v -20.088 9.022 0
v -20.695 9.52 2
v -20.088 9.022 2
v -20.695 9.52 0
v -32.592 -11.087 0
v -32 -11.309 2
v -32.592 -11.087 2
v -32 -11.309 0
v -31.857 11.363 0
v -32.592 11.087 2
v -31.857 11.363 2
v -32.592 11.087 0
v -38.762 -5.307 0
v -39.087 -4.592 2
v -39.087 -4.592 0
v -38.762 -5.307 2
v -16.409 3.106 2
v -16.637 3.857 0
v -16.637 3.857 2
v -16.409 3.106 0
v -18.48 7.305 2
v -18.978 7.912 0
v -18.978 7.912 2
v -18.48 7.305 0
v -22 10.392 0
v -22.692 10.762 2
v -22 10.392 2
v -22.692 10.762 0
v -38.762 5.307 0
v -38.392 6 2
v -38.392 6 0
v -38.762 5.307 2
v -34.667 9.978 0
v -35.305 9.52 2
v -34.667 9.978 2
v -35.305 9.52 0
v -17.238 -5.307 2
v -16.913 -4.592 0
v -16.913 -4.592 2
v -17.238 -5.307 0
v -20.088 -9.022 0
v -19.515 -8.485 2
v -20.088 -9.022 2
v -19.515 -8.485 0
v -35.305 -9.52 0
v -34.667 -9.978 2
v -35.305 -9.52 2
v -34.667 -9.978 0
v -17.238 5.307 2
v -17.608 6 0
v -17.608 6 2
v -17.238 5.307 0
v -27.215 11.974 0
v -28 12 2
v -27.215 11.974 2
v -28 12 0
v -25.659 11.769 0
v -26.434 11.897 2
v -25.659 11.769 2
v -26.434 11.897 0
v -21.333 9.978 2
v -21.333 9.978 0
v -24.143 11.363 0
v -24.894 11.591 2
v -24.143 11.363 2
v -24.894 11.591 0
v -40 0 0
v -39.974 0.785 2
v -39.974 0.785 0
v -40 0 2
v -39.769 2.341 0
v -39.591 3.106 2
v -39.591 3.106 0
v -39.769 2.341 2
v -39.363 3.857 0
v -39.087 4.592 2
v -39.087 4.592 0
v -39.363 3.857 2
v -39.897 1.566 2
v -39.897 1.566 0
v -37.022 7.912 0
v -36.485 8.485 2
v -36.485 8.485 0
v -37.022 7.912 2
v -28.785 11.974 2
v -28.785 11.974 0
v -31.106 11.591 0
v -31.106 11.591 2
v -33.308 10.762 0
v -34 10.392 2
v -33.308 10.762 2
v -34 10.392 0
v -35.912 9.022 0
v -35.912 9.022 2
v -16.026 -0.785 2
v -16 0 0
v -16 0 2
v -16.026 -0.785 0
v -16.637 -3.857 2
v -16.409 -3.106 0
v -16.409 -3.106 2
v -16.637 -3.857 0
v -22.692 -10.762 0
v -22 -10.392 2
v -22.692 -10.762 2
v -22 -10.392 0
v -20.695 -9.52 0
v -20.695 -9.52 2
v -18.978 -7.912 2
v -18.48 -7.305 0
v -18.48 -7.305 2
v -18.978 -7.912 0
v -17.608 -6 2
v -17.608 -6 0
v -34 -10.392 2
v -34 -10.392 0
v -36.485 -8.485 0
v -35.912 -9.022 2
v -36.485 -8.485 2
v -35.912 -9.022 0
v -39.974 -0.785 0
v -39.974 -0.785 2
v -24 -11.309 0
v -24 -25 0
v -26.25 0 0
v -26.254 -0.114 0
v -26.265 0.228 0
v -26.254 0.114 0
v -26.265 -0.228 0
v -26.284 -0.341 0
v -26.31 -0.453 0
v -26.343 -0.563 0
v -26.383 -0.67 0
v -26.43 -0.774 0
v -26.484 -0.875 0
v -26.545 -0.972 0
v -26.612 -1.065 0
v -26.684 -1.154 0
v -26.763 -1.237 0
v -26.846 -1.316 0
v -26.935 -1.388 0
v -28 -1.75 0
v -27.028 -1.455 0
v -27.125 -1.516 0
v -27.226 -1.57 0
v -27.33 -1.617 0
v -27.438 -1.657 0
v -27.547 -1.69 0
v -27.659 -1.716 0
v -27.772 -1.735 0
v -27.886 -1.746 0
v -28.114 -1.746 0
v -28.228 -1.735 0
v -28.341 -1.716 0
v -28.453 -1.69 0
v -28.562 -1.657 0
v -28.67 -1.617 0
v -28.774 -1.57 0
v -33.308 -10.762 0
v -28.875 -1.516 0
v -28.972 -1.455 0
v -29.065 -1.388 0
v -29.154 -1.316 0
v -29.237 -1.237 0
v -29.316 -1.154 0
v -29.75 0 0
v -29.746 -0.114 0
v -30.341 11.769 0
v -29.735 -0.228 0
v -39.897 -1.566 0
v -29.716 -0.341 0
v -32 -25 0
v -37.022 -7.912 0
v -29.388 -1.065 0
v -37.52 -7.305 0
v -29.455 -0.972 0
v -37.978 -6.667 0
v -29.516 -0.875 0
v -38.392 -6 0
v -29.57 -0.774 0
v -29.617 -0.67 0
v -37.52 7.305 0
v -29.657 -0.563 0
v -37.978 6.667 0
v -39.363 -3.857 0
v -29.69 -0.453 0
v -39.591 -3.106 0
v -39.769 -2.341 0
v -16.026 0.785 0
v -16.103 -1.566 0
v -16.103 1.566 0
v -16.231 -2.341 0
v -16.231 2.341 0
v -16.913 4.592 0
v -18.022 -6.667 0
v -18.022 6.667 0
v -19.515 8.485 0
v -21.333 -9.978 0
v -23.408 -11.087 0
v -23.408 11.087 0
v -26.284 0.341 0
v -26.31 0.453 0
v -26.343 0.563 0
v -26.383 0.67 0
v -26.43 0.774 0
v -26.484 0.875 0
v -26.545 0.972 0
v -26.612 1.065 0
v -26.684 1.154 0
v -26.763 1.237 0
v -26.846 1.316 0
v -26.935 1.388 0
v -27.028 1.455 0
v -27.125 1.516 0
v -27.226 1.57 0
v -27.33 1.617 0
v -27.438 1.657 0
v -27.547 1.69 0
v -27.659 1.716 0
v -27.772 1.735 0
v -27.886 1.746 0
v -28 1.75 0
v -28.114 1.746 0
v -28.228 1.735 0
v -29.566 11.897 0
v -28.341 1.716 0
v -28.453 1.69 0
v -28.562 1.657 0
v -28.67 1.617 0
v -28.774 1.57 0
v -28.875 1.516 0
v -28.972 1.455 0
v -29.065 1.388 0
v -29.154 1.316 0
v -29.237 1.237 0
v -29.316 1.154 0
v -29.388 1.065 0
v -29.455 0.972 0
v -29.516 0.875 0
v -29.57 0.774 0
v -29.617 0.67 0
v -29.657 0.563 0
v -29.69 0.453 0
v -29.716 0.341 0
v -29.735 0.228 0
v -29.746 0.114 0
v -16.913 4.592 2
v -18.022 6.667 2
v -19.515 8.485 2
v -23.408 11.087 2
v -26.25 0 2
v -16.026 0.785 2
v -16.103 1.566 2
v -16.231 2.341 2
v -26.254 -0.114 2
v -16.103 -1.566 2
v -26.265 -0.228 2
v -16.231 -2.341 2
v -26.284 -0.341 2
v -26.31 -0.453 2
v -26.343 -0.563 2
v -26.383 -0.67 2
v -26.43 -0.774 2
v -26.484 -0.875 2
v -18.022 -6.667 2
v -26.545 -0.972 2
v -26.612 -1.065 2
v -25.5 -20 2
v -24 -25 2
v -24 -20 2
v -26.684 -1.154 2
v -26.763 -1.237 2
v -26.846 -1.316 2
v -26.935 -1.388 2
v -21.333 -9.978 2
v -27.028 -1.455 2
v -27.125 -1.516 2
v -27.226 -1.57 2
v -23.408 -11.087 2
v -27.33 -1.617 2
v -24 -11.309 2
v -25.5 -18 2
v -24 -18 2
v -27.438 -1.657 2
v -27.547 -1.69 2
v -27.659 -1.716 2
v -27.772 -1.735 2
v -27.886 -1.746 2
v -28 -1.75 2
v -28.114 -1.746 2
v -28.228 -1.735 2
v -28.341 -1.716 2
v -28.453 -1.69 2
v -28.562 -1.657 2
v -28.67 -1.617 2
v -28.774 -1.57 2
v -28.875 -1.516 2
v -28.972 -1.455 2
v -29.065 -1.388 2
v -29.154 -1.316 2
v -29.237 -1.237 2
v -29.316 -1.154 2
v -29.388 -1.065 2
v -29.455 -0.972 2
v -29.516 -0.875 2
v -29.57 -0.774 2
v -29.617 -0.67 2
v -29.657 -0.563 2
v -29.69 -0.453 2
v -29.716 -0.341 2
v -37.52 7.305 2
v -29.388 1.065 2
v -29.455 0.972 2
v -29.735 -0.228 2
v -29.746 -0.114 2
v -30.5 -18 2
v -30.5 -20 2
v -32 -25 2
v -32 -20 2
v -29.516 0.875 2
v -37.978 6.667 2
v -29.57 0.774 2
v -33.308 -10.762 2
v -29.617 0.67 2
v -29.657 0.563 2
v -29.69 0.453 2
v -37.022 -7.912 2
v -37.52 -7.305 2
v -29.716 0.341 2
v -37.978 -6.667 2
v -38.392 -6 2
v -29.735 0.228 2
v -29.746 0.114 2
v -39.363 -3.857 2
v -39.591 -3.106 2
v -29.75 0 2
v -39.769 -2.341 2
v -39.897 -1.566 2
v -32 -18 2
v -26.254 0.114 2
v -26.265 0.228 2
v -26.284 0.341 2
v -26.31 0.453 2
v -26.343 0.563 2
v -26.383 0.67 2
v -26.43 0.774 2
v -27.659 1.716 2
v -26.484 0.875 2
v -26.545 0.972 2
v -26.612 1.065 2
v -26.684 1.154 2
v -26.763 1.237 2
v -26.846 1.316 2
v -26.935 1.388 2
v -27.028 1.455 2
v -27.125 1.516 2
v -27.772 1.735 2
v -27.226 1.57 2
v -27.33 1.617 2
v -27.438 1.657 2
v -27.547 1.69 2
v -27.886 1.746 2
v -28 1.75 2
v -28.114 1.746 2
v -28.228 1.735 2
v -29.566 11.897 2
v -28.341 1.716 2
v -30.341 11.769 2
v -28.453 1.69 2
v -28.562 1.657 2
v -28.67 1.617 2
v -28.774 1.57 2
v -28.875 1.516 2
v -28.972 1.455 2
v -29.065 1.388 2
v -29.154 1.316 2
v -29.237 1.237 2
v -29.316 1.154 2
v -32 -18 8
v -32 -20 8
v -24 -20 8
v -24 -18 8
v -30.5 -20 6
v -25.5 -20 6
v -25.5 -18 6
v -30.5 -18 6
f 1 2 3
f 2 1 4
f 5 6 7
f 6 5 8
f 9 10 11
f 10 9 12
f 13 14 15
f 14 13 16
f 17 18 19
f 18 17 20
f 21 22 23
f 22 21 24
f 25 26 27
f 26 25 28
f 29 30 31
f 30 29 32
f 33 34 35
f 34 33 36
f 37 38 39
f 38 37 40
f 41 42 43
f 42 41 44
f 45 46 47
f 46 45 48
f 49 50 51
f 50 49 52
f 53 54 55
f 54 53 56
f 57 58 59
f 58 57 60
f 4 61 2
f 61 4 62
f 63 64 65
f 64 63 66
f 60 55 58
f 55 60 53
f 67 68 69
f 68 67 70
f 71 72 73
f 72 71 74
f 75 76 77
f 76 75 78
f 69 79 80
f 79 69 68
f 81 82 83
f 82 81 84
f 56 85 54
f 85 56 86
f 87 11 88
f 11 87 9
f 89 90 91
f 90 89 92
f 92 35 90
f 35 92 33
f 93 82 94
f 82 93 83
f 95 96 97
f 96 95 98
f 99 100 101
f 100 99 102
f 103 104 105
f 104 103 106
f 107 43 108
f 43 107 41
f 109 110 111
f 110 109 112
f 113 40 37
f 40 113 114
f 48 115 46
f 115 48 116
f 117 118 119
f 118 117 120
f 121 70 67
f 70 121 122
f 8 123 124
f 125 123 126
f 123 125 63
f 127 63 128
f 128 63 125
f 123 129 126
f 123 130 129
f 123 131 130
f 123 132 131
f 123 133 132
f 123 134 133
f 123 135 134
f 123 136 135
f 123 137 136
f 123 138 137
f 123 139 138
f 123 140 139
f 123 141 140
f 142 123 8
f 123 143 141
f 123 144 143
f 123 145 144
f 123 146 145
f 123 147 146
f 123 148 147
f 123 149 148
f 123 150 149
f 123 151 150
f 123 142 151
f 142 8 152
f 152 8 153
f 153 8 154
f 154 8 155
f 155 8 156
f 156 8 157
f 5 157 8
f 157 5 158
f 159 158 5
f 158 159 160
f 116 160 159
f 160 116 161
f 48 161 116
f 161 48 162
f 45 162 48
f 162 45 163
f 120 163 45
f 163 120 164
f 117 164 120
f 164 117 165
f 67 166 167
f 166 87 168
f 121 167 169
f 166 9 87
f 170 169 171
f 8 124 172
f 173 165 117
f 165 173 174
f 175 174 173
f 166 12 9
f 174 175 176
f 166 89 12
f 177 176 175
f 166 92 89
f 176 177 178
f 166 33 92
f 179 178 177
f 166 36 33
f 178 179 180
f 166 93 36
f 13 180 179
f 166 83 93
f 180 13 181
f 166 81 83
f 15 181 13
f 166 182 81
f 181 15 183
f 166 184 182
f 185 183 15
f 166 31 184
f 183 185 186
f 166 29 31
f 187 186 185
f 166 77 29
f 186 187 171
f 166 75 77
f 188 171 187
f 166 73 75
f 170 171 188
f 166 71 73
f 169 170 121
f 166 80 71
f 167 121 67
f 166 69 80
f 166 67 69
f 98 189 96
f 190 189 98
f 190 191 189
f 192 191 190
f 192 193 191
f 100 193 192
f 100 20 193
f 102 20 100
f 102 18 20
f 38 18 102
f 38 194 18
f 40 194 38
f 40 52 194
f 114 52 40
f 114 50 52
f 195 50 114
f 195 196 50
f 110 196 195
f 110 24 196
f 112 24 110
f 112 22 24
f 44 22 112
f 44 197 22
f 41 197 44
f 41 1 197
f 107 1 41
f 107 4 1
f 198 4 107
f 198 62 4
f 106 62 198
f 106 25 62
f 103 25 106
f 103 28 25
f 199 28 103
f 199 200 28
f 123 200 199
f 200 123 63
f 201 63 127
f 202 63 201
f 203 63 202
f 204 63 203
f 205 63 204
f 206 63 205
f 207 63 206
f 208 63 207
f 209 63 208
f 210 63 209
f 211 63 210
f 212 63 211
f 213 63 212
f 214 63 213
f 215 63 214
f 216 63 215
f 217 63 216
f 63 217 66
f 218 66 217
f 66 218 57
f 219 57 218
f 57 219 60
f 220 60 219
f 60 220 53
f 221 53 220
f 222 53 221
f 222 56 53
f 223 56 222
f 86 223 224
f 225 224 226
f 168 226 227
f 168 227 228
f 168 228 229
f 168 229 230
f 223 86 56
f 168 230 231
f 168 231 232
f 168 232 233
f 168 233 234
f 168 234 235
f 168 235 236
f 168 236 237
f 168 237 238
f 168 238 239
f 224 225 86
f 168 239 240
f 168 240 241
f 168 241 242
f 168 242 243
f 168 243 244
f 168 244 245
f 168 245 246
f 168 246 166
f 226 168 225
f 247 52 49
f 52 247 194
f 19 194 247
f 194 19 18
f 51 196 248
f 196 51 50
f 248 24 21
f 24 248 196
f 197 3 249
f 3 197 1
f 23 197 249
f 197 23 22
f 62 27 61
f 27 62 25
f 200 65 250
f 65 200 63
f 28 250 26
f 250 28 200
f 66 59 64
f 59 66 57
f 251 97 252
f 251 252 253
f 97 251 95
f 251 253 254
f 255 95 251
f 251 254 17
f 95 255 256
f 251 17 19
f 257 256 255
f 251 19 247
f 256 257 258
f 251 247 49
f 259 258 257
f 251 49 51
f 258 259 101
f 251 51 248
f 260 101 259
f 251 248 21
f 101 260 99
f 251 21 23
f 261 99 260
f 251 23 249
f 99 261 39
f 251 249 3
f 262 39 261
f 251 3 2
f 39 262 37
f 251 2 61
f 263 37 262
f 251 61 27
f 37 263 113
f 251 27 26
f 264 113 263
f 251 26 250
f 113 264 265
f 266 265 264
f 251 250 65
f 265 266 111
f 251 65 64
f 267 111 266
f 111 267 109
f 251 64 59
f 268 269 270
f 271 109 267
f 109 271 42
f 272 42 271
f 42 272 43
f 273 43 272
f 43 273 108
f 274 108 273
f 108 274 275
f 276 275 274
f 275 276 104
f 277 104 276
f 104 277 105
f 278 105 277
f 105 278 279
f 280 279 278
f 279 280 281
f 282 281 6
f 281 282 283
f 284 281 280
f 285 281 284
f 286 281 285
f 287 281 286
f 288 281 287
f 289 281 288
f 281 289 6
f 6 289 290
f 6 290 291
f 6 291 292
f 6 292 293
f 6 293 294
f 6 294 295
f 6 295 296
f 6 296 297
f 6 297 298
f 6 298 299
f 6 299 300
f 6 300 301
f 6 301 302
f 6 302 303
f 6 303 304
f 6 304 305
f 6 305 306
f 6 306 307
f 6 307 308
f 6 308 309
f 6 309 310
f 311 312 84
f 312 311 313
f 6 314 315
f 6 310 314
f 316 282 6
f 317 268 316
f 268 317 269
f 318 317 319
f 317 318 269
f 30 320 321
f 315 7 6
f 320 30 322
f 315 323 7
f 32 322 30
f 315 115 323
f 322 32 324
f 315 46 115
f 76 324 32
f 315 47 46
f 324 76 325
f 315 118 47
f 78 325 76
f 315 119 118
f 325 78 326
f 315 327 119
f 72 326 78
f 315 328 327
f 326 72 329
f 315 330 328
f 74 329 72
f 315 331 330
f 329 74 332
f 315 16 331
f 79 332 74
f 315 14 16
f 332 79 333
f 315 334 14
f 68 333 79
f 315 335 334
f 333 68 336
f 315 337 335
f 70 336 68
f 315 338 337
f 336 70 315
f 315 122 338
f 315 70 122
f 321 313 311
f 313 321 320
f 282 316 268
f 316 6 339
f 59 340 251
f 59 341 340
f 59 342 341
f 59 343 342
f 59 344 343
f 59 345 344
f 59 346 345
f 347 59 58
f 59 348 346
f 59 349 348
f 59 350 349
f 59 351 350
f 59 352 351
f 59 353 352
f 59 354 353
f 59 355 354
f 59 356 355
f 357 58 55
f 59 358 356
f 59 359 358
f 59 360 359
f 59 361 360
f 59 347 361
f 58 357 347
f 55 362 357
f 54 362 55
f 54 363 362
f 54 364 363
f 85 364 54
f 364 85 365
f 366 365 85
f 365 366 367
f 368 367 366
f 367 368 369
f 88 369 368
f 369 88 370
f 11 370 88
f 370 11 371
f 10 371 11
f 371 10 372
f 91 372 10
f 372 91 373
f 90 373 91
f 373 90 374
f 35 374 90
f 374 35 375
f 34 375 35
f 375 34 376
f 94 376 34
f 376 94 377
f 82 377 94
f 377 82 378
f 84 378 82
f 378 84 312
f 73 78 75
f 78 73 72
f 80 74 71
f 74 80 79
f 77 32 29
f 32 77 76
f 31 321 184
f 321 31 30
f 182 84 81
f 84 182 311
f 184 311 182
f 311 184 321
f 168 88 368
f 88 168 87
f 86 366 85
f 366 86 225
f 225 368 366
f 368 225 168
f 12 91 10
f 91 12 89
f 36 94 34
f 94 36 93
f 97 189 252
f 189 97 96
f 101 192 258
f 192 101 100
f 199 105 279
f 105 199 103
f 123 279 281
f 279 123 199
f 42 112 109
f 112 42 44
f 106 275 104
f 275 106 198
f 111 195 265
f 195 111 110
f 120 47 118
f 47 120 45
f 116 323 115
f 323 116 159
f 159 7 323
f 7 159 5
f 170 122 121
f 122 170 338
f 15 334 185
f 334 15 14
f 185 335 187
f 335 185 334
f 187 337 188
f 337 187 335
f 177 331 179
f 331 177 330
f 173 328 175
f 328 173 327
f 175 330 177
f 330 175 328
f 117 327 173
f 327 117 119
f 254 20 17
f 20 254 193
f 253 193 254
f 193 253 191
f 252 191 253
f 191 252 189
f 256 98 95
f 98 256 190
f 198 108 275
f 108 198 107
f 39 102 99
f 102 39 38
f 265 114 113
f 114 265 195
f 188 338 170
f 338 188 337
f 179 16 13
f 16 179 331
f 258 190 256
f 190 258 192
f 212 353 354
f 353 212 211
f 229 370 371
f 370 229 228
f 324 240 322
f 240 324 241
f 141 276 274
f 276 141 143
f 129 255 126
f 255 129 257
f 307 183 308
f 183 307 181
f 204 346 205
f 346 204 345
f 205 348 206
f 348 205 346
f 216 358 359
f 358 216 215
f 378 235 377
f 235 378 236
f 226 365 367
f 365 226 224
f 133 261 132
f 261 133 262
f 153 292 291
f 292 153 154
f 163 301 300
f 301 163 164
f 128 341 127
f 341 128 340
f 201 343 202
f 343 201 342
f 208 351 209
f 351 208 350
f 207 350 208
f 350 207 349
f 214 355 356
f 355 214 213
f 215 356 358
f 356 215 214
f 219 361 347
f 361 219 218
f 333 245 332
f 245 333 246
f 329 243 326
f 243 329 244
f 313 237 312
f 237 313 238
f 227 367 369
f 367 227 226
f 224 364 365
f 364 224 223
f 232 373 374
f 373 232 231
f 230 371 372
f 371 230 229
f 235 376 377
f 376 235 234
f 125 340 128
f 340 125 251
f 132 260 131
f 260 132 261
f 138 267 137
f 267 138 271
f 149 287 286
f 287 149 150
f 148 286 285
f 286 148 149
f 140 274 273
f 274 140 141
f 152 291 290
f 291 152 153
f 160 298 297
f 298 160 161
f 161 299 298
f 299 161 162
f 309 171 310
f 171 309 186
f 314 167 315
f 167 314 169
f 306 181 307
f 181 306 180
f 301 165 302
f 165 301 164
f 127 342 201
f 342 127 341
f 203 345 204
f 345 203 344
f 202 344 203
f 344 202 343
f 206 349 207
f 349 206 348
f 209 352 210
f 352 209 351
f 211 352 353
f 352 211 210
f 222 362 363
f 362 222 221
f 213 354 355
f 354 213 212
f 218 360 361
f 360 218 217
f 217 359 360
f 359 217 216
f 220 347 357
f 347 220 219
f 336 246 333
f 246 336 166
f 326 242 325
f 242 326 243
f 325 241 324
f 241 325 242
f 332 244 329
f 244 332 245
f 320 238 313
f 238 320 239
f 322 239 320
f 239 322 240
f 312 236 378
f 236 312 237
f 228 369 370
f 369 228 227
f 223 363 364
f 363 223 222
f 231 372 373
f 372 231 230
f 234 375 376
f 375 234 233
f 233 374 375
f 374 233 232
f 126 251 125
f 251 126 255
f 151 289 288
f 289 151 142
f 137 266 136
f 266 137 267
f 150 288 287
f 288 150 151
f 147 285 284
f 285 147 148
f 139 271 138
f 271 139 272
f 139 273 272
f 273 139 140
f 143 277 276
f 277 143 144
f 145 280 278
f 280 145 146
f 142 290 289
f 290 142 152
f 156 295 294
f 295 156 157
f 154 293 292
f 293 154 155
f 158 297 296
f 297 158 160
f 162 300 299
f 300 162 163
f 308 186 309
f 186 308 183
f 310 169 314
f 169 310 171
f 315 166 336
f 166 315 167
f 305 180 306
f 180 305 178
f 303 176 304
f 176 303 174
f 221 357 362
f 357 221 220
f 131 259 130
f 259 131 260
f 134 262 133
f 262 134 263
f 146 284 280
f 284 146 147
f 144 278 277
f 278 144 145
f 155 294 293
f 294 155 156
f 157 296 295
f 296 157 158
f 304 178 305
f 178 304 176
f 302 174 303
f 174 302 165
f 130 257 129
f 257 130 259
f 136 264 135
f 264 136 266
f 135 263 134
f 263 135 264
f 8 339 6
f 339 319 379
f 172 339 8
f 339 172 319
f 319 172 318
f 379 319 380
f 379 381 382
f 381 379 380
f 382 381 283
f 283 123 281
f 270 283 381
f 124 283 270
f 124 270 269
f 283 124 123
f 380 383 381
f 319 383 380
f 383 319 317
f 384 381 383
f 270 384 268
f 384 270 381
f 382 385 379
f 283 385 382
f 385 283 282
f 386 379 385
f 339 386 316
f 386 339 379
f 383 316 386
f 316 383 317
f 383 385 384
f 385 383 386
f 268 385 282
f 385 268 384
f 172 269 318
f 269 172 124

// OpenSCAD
$fn = 96;

driveDiameter = 12;
camDiameter = 20;
shaftDiameter = 3;
shaftFlatOffset = .5;
shaftOffset = 2;
slop = .5;


*assembled();
print();

module assembled() {
  drive();
  cam();
  base();
}

module print() {
  translate([25,0,0])
  drive();
  cam();
  !translate([-30,0,2])
  base();
}


module base() {
  translate([shaftOffset,0,-2]) {
    difference() {
      cylinder(r=(camDiameter+4)/2, h=2);
      cylinder(r=(shaftDiameter+slop)/2, h=5);
    }
    translate([-4,-25,0])
    cube([8,20,2]);
    translate([-4,-20,2])
    difference() {
      cube([8,2,6]);
      translate([1.5,-.01,0])
      cube([5,2.011,4]);
    }
  }
}

module drive() {
  difference() {
    cylinder(r1=driveDiameter/2, r2=driveDiameter/2+2, h=5);
    translate([shaftOffset, 0])
    shaft();
  }
}

module cam() {
  rotate([0,0,5]) {
    difference() {
      union() {
        linear_extrude(3)
        translate([-1.25, -35])
        square([2.5,30]);
        cylinder(r=camDiameter/2, h=5);
      }
      translate([0,0,-.0005])
      cylinder(
        r1=(driveDiameter+slop)/2,
        r2=(driveDiameter+slop)/2+2,
        h=5.001
      );
    }
  }
}

module shaft() {
  translate([0,0,-0.0005])
  linear_extrude(5.001)
  difference() {
    circle((shaftDiameter+slop)/2);
    translate([shaftDiameter/2-shaftFlatOffset,-2.5])
    square([5,5]);
  }
}
